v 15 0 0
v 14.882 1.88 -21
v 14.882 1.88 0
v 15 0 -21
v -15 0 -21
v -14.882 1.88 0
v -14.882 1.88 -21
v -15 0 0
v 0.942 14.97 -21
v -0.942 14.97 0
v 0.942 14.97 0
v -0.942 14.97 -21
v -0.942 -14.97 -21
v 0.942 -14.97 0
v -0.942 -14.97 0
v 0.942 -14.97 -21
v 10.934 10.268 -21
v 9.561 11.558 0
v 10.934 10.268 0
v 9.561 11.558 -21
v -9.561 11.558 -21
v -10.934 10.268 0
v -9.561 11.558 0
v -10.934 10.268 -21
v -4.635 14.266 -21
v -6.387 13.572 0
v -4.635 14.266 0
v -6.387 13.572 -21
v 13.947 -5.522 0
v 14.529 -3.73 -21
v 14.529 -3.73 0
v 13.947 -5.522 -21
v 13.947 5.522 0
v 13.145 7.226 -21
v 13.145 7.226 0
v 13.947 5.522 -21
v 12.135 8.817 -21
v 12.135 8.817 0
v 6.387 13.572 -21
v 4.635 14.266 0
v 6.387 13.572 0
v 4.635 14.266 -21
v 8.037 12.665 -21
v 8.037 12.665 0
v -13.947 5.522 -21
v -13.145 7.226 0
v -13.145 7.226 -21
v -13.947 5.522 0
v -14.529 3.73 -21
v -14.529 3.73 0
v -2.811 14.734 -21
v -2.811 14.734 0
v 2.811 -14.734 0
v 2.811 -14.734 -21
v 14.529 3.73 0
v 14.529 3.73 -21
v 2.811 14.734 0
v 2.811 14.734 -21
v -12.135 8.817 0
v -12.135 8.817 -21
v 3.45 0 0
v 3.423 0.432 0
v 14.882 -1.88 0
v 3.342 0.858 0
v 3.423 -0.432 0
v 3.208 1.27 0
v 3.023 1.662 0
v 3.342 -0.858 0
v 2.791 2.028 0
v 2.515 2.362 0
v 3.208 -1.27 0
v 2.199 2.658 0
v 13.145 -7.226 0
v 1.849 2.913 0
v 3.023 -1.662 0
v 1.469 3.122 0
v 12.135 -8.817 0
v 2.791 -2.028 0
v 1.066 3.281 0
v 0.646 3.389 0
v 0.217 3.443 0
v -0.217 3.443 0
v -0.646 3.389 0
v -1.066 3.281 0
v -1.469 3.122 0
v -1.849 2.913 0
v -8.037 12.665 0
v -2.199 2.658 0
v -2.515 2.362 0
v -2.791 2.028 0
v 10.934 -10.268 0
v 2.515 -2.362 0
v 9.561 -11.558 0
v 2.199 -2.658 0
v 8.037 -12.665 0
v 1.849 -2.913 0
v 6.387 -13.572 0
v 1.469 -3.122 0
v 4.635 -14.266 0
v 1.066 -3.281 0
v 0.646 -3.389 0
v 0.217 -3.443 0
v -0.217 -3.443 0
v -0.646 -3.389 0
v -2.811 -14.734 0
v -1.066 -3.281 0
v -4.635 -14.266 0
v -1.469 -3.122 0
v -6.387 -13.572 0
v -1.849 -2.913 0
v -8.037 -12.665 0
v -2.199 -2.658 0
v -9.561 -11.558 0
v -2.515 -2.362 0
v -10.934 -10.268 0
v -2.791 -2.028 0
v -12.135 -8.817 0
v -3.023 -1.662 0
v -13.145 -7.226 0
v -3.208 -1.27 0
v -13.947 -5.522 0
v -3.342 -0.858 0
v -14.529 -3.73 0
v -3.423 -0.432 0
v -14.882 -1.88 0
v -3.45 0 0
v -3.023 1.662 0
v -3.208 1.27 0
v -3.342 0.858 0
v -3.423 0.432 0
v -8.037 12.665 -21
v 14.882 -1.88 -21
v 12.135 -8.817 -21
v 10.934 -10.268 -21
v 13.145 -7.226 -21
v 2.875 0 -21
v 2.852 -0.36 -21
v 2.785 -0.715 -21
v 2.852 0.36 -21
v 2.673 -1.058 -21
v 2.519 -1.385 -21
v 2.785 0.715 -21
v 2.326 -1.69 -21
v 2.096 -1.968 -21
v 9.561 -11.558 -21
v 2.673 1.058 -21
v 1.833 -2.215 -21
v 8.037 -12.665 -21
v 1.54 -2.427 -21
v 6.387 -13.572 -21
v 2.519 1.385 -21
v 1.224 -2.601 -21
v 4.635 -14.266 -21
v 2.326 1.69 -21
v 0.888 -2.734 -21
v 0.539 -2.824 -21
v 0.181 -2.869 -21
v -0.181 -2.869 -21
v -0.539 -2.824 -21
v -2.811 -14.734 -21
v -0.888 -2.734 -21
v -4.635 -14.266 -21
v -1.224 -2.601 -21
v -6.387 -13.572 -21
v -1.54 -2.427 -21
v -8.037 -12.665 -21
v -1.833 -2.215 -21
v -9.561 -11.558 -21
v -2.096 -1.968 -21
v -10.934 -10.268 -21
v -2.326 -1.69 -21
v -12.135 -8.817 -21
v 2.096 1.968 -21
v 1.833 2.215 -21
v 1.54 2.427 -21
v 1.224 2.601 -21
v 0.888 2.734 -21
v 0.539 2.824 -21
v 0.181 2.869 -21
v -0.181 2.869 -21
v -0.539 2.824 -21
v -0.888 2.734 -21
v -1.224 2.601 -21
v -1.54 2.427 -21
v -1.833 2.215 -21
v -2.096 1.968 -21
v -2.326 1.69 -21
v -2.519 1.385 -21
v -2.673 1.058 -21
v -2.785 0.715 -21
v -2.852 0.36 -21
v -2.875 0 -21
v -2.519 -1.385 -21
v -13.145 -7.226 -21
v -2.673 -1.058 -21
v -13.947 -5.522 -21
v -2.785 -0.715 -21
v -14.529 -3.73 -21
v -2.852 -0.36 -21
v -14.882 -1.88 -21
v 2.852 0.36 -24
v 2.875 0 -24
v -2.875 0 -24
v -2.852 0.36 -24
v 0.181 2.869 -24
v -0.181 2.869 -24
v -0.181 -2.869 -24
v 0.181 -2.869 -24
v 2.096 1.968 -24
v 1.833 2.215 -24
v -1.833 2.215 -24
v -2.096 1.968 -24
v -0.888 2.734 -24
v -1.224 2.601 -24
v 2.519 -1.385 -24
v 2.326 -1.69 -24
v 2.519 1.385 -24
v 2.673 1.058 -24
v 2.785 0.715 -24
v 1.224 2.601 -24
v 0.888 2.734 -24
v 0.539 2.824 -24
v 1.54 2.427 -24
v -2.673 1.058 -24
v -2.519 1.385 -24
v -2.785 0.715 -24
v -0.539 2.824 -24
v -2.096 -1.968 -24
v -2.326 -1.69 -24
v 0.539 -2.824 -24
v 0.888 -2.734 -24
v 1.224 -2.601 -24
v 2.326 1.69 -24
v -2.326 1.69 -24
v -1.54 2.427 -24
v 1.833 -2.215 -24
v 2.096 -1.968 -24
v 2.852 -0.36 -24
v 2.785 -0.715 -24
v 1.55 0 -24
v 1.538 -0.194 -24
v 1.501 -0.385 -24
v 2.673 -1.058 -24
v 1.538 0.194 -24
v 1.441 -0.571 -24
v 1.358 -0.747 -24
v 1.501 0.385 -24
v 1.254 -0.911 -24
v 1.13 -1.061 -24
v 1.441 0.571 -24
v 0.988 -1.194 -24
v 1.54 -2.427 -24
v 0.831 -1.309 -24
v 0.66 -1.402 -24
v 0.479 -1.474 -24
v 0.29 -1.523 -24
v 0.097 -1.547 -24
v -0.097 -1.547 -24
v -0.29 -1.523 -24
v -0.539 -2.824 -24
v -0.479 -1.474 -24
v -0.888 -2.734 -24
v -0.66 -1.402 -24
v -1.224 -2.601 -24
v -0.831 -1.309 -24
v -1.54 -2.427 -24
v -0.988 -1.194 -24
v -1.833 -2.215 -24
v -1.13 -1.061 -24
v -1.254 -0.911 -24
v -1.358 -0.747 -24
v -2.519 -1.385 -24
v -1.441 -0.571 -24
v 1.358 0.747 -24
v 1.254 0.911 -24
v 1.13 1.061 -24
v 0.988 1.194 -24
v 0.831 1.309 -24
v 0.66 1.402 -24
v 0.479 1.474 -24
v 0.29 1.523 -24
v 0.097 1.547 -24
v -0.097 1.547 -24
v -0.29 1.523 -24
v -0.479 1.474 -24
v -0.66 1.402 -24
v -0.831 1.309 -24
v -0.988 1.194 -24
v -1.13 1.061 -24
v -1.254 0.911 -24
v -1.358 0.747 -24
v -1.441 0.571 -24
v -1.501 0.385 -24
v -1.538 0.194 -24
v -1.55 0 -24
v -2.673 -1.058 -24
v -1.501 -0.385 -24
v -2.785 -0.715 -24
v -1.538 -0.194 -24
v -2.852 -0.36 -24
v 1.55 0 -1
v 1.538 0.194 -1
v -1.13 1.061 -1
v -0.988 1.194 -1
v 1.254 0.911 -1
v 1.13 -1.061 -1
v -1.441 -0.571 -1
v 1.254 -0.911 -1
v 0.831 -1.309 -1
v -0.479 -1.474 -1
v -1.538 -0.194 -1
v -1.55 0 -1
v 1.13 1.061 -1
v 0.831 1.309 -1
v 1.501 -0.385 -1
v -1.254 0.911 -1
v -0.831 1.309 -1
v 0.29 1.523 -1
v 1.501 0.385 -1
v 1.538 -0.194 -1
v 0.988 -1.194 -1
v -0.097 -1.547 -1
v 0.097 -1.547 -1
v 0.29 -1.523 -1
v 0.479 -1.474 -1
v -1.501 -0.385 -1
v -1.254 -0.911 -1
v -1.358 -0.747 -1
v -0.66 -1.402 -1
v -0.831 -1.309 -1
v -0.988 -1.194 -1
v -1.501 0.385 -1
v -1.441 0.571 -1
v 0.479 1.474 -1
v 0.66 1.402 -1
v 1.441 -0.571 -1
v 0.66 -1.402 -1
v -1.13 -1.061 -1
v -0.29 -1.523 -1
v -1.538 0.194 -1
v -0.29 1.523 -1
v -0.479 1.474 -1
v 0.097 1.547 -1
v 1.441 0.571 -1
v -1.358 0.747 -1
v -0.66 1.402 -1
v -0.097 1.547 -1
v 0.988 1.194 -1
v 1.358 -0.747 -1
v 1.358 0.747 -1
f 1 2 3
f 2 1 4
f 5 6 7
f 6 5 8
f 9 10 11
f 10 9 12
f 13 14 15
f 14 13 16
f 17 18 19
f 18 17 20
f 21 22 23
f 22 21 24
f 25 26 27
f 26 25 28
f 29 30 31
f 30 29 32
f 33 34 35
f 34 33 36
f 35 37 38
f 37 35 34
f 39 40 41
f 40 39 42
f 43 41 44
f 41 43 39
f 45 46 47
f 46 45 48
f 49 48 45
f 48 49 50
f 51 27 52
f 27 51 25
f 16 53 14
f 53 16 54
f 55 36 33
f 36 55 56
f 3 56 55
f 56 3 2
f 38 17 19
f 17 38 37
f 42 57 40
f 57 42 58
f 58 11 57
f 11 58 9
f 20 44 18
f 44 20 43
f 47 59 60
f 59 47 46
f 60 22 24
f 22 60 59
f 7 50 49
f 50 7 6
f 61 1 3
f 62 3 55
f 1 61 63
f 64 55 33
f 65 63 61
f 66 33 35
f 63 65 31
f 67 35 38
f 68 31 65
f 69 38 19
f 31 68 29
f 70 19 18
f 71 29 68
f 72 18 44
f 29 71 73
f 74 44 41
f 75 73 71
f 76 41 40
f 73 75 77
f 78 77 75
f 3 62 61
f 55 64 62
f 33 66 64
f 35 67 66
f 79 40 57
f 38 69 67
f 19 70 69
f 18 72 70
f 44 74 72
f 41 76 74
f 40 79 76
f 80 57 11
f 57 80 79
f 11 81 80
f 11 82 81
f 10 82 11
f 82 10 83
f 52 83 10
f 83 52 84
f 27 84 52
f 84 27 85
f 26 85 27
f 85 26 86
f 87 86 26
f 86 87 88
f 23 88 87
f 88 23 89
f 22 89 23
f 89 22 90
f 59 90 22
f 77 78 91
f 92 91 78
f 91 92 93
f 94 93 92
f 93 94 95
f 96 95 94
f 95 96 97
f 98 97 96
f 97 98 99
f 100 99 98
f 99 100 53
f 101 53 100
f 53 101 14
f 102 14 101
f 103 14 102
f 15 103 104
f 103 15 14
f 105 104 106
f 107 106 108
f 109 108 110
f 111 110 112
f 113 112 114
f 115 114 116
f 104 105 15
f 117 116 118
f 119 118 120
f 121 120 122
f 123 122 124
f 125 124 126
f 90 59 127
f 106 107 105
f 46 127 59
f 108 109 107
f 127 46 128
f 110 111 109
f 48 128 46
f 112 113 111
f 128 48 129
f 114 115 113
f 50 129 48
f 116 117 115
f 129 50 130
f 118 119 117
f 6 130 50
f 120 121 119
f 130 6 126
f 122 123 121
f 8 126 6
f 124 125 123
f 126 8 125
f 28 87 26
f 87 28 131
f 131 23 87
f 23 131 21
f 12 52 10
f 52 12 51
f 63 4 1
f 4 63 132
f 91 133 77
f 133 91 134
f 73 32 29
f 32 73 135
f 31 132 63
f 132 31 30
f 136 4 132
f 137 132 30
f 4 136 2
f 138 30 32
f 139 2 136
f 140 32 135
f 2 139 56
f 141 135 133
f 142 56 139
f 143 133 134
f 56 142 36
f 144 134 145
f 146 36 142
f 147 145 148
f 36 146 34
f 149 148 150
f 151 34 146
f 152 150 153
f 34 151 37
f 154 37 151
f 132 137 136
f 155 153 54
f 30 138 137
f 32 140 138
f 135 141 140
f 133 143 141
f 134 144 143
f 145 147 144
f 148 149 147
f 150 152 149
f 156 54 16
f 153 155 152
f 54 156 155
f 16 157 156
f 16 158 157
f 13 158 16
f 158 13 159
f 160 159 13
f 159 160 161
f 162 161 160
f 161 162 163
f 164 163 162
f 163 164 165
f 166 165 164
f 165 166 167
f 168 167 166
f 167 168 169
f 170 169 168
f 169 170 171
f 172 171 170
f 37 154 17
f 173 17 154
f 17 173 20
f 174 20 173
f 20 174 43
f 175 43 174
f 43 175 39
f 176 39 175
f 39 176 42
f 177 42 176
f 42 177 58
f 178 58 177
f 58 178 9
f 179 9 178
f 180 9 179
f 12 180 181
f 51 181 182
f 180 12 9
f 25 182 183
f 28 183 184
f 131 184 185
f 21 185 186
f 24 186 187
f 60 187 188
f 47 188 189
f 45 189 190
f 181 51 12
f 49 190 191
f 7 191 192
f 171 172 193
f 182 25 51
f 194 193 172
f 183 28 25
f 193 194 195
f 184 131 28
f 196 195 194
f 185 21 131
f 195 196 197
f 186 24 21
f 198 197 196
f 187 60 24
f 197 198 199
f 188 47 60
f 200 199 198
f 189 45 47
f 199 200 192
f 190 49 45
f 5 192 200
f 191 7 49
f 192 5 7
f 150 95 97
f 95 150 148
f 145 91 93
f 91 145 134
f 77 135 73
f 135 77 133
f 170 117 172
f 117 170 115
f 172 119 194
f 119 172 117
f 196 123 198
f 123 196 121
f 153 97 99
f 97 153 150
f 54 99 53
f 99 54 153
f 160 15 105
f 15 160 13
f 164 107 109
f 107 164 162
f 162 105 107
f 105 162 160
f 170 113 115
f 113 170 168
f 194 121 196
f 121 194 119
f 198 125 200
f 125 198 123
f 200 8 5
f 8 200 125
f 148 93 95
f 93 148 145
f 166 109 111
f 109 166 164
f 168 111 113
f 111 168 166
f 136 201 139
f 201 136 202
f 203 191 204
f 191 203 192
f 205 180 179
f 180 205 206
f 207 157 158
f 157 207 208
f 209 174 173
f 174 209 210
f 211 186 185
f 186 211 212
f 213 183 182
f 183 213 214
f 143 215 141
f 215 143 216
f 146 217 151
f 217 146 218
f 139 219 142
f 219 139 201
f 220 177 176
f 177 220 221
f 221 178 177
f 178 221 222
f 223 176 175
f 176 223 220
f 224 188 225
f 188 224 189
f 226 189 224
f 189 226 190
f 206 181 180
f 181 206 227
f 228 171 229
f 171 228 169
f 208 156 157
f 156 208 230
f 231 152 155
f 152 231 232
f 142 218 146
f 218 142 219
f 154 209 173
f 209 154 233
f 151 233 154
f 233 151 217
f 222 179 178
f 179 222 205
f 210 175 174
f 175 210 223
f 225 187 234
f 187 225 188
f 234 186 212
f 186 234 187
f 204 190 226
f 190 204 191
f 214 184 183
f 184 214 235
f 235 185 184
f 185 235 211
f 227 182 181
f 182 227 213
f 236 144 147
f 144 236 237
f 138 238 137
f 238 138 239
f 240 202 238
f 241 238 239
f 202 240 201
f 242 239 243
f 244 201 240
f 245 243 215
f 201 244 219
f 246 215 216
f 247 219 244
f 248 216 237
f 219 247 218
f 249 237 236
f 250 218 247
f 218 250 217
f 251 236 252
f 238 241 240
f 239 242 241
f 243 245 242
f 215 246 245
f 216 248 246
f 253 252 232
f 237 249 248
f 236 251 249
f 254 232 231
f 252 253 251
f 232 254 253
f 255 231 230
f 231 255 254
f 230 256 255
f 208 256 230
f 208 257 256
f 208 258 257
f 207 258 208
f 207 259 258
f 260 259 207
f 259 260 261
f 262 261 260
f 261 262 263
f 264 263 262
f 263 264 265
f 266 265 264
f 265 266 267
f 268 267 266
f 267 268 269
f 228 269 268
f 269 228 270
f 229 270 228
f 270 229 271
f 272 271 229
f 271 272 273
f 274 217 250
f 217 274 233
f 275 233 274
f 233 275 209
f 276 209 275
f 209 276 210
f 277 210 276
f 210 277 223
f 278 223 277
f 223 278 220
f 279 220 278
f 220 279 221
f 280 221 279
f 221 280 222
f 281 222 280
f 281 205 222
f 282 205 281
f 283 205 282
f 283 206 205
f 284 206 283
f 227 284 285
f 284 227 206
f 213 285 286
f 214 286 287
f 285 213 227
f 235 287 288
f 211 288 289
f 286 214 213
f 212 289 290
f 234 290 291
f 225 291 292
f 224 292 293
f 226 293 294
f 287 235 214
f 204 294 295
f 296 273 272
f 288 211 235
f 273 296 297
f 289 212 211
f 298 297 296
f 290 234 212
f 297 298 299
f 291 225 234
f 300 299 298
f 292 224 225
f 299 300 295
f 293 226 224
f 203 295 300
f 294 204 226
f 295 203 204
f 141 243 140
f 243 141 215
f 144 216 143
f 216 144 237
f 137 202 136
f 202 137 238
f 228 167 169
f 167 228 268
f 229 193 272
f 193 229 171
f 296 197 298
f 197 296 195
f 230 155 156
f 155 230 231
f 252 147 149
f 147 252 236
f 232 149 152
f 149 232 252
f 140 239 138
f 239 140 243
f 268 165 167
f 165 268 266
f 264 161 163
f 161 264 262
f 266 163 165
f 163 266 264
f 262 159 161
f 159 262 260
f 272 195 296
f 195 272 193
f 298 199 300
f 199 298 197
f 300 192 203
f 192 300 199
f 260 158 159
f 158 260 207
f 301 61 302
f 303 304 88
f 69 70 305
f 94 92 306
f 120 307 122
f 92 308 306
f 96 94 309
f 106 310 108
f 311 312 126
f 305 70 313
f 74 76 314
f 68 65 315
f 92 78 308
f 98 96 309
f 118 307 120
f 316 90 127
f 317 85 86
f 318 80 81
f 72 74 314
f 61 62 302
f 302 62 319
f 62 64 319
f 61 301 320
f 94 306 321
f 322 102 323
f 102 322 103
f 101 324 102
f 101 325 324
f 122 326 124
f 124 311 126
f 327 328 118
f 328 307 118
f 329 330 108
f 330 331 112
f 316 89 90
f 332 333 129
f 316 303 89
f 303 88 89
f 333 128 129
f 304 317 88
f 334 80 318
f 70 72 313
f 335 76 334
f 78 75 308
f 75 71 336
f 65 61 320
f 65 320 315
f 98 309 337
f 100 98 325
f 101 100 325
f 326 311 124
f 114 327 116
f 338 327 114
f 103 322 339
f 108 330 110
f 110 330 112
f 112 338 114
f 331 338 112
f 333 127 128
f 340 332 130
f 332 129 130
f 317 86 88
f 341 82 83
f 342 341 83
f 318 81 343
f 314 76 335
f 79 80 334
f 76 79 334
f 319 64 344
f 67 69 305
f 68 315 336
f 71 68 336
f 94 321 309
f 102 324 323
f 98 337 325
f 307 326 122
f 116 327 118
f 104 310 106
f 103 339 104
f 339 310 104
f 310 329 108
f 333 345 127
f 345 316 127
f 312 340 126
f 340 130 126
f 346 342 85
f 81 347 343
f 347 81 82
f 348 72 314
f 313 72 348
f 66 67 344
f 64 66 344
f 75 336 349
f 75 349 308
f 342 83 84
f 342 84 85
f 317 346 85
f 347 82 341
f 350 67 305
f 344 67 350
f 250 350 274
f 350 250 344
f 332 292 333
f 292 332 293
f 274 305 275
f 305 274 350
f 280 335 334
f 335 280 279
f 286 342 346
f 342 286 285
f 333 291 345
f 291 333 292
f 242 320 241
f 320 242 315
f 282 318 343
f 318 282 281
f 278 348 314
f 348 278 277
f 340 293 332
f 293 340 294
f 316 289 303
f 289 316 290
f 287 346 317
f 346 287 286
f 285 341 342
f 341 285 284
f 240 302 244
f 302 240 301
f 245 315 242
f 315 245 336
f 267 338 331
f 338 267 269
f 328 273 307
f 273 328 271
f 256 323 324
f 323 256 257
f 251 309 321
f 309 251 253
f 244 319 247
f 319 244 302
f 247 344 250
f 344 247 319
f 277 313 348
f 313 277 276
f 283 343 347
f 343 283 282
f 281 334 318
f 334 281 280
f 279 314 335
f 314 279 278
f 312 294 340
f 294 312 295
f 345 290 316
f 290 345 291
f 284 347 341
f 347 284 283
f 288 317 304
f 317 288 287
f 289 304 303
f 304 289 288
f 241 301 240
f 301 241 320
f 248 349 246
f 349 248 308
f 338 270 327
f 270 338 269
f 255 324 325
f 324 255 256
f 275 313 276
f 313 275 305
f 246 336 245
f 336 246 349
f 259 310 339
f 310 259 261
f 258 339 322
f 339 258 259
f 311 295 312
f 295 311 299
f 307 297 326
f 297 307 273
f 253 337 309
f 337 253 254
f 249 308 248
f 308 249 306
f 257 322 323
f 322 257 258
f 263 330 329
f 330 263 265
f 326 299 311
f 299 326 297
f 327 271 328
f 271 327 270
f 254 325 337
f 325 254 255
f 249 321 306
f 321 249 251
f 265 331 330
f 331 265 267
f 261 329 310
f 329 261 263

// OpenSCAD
$fn = 50;


difference() {
	union() {
		translate(v = [0, 0, -21.0000000000]) {
			cylinder(h = 21, r = 15.0000000000);
		}
		#translate(v = [0, 0, -24.0000000000]) {
			cylinder(h = 24, r = 2.8750000000);
		}
	}
	union() {
		translate(v = [0, 0, 0]) {
			rotate(a = [0, 0, 0]) {
				difference() {
					union() {
						translate(v = [0, 0, -24.0000000000]) {
							cylinder(h = 24, r = 1.2500000000);
						}
						translate(v = [0, 0, -1.0000000000]) {
							cylinder(h = 1.0000000000, r1 = 1.5500000000, r2 = 3.4500000000);
						}
						translate(v = [0, 0, -24.0000000000]) {
							cylinder(h = 24, r = 1.5500000000);
						}
						translate(v = [0, 0, -24.0000000000]) {
							cylinder(h = 24, r = 1.2500000000);
						}
					}
					union();
				}
			}
		}
	}
}
